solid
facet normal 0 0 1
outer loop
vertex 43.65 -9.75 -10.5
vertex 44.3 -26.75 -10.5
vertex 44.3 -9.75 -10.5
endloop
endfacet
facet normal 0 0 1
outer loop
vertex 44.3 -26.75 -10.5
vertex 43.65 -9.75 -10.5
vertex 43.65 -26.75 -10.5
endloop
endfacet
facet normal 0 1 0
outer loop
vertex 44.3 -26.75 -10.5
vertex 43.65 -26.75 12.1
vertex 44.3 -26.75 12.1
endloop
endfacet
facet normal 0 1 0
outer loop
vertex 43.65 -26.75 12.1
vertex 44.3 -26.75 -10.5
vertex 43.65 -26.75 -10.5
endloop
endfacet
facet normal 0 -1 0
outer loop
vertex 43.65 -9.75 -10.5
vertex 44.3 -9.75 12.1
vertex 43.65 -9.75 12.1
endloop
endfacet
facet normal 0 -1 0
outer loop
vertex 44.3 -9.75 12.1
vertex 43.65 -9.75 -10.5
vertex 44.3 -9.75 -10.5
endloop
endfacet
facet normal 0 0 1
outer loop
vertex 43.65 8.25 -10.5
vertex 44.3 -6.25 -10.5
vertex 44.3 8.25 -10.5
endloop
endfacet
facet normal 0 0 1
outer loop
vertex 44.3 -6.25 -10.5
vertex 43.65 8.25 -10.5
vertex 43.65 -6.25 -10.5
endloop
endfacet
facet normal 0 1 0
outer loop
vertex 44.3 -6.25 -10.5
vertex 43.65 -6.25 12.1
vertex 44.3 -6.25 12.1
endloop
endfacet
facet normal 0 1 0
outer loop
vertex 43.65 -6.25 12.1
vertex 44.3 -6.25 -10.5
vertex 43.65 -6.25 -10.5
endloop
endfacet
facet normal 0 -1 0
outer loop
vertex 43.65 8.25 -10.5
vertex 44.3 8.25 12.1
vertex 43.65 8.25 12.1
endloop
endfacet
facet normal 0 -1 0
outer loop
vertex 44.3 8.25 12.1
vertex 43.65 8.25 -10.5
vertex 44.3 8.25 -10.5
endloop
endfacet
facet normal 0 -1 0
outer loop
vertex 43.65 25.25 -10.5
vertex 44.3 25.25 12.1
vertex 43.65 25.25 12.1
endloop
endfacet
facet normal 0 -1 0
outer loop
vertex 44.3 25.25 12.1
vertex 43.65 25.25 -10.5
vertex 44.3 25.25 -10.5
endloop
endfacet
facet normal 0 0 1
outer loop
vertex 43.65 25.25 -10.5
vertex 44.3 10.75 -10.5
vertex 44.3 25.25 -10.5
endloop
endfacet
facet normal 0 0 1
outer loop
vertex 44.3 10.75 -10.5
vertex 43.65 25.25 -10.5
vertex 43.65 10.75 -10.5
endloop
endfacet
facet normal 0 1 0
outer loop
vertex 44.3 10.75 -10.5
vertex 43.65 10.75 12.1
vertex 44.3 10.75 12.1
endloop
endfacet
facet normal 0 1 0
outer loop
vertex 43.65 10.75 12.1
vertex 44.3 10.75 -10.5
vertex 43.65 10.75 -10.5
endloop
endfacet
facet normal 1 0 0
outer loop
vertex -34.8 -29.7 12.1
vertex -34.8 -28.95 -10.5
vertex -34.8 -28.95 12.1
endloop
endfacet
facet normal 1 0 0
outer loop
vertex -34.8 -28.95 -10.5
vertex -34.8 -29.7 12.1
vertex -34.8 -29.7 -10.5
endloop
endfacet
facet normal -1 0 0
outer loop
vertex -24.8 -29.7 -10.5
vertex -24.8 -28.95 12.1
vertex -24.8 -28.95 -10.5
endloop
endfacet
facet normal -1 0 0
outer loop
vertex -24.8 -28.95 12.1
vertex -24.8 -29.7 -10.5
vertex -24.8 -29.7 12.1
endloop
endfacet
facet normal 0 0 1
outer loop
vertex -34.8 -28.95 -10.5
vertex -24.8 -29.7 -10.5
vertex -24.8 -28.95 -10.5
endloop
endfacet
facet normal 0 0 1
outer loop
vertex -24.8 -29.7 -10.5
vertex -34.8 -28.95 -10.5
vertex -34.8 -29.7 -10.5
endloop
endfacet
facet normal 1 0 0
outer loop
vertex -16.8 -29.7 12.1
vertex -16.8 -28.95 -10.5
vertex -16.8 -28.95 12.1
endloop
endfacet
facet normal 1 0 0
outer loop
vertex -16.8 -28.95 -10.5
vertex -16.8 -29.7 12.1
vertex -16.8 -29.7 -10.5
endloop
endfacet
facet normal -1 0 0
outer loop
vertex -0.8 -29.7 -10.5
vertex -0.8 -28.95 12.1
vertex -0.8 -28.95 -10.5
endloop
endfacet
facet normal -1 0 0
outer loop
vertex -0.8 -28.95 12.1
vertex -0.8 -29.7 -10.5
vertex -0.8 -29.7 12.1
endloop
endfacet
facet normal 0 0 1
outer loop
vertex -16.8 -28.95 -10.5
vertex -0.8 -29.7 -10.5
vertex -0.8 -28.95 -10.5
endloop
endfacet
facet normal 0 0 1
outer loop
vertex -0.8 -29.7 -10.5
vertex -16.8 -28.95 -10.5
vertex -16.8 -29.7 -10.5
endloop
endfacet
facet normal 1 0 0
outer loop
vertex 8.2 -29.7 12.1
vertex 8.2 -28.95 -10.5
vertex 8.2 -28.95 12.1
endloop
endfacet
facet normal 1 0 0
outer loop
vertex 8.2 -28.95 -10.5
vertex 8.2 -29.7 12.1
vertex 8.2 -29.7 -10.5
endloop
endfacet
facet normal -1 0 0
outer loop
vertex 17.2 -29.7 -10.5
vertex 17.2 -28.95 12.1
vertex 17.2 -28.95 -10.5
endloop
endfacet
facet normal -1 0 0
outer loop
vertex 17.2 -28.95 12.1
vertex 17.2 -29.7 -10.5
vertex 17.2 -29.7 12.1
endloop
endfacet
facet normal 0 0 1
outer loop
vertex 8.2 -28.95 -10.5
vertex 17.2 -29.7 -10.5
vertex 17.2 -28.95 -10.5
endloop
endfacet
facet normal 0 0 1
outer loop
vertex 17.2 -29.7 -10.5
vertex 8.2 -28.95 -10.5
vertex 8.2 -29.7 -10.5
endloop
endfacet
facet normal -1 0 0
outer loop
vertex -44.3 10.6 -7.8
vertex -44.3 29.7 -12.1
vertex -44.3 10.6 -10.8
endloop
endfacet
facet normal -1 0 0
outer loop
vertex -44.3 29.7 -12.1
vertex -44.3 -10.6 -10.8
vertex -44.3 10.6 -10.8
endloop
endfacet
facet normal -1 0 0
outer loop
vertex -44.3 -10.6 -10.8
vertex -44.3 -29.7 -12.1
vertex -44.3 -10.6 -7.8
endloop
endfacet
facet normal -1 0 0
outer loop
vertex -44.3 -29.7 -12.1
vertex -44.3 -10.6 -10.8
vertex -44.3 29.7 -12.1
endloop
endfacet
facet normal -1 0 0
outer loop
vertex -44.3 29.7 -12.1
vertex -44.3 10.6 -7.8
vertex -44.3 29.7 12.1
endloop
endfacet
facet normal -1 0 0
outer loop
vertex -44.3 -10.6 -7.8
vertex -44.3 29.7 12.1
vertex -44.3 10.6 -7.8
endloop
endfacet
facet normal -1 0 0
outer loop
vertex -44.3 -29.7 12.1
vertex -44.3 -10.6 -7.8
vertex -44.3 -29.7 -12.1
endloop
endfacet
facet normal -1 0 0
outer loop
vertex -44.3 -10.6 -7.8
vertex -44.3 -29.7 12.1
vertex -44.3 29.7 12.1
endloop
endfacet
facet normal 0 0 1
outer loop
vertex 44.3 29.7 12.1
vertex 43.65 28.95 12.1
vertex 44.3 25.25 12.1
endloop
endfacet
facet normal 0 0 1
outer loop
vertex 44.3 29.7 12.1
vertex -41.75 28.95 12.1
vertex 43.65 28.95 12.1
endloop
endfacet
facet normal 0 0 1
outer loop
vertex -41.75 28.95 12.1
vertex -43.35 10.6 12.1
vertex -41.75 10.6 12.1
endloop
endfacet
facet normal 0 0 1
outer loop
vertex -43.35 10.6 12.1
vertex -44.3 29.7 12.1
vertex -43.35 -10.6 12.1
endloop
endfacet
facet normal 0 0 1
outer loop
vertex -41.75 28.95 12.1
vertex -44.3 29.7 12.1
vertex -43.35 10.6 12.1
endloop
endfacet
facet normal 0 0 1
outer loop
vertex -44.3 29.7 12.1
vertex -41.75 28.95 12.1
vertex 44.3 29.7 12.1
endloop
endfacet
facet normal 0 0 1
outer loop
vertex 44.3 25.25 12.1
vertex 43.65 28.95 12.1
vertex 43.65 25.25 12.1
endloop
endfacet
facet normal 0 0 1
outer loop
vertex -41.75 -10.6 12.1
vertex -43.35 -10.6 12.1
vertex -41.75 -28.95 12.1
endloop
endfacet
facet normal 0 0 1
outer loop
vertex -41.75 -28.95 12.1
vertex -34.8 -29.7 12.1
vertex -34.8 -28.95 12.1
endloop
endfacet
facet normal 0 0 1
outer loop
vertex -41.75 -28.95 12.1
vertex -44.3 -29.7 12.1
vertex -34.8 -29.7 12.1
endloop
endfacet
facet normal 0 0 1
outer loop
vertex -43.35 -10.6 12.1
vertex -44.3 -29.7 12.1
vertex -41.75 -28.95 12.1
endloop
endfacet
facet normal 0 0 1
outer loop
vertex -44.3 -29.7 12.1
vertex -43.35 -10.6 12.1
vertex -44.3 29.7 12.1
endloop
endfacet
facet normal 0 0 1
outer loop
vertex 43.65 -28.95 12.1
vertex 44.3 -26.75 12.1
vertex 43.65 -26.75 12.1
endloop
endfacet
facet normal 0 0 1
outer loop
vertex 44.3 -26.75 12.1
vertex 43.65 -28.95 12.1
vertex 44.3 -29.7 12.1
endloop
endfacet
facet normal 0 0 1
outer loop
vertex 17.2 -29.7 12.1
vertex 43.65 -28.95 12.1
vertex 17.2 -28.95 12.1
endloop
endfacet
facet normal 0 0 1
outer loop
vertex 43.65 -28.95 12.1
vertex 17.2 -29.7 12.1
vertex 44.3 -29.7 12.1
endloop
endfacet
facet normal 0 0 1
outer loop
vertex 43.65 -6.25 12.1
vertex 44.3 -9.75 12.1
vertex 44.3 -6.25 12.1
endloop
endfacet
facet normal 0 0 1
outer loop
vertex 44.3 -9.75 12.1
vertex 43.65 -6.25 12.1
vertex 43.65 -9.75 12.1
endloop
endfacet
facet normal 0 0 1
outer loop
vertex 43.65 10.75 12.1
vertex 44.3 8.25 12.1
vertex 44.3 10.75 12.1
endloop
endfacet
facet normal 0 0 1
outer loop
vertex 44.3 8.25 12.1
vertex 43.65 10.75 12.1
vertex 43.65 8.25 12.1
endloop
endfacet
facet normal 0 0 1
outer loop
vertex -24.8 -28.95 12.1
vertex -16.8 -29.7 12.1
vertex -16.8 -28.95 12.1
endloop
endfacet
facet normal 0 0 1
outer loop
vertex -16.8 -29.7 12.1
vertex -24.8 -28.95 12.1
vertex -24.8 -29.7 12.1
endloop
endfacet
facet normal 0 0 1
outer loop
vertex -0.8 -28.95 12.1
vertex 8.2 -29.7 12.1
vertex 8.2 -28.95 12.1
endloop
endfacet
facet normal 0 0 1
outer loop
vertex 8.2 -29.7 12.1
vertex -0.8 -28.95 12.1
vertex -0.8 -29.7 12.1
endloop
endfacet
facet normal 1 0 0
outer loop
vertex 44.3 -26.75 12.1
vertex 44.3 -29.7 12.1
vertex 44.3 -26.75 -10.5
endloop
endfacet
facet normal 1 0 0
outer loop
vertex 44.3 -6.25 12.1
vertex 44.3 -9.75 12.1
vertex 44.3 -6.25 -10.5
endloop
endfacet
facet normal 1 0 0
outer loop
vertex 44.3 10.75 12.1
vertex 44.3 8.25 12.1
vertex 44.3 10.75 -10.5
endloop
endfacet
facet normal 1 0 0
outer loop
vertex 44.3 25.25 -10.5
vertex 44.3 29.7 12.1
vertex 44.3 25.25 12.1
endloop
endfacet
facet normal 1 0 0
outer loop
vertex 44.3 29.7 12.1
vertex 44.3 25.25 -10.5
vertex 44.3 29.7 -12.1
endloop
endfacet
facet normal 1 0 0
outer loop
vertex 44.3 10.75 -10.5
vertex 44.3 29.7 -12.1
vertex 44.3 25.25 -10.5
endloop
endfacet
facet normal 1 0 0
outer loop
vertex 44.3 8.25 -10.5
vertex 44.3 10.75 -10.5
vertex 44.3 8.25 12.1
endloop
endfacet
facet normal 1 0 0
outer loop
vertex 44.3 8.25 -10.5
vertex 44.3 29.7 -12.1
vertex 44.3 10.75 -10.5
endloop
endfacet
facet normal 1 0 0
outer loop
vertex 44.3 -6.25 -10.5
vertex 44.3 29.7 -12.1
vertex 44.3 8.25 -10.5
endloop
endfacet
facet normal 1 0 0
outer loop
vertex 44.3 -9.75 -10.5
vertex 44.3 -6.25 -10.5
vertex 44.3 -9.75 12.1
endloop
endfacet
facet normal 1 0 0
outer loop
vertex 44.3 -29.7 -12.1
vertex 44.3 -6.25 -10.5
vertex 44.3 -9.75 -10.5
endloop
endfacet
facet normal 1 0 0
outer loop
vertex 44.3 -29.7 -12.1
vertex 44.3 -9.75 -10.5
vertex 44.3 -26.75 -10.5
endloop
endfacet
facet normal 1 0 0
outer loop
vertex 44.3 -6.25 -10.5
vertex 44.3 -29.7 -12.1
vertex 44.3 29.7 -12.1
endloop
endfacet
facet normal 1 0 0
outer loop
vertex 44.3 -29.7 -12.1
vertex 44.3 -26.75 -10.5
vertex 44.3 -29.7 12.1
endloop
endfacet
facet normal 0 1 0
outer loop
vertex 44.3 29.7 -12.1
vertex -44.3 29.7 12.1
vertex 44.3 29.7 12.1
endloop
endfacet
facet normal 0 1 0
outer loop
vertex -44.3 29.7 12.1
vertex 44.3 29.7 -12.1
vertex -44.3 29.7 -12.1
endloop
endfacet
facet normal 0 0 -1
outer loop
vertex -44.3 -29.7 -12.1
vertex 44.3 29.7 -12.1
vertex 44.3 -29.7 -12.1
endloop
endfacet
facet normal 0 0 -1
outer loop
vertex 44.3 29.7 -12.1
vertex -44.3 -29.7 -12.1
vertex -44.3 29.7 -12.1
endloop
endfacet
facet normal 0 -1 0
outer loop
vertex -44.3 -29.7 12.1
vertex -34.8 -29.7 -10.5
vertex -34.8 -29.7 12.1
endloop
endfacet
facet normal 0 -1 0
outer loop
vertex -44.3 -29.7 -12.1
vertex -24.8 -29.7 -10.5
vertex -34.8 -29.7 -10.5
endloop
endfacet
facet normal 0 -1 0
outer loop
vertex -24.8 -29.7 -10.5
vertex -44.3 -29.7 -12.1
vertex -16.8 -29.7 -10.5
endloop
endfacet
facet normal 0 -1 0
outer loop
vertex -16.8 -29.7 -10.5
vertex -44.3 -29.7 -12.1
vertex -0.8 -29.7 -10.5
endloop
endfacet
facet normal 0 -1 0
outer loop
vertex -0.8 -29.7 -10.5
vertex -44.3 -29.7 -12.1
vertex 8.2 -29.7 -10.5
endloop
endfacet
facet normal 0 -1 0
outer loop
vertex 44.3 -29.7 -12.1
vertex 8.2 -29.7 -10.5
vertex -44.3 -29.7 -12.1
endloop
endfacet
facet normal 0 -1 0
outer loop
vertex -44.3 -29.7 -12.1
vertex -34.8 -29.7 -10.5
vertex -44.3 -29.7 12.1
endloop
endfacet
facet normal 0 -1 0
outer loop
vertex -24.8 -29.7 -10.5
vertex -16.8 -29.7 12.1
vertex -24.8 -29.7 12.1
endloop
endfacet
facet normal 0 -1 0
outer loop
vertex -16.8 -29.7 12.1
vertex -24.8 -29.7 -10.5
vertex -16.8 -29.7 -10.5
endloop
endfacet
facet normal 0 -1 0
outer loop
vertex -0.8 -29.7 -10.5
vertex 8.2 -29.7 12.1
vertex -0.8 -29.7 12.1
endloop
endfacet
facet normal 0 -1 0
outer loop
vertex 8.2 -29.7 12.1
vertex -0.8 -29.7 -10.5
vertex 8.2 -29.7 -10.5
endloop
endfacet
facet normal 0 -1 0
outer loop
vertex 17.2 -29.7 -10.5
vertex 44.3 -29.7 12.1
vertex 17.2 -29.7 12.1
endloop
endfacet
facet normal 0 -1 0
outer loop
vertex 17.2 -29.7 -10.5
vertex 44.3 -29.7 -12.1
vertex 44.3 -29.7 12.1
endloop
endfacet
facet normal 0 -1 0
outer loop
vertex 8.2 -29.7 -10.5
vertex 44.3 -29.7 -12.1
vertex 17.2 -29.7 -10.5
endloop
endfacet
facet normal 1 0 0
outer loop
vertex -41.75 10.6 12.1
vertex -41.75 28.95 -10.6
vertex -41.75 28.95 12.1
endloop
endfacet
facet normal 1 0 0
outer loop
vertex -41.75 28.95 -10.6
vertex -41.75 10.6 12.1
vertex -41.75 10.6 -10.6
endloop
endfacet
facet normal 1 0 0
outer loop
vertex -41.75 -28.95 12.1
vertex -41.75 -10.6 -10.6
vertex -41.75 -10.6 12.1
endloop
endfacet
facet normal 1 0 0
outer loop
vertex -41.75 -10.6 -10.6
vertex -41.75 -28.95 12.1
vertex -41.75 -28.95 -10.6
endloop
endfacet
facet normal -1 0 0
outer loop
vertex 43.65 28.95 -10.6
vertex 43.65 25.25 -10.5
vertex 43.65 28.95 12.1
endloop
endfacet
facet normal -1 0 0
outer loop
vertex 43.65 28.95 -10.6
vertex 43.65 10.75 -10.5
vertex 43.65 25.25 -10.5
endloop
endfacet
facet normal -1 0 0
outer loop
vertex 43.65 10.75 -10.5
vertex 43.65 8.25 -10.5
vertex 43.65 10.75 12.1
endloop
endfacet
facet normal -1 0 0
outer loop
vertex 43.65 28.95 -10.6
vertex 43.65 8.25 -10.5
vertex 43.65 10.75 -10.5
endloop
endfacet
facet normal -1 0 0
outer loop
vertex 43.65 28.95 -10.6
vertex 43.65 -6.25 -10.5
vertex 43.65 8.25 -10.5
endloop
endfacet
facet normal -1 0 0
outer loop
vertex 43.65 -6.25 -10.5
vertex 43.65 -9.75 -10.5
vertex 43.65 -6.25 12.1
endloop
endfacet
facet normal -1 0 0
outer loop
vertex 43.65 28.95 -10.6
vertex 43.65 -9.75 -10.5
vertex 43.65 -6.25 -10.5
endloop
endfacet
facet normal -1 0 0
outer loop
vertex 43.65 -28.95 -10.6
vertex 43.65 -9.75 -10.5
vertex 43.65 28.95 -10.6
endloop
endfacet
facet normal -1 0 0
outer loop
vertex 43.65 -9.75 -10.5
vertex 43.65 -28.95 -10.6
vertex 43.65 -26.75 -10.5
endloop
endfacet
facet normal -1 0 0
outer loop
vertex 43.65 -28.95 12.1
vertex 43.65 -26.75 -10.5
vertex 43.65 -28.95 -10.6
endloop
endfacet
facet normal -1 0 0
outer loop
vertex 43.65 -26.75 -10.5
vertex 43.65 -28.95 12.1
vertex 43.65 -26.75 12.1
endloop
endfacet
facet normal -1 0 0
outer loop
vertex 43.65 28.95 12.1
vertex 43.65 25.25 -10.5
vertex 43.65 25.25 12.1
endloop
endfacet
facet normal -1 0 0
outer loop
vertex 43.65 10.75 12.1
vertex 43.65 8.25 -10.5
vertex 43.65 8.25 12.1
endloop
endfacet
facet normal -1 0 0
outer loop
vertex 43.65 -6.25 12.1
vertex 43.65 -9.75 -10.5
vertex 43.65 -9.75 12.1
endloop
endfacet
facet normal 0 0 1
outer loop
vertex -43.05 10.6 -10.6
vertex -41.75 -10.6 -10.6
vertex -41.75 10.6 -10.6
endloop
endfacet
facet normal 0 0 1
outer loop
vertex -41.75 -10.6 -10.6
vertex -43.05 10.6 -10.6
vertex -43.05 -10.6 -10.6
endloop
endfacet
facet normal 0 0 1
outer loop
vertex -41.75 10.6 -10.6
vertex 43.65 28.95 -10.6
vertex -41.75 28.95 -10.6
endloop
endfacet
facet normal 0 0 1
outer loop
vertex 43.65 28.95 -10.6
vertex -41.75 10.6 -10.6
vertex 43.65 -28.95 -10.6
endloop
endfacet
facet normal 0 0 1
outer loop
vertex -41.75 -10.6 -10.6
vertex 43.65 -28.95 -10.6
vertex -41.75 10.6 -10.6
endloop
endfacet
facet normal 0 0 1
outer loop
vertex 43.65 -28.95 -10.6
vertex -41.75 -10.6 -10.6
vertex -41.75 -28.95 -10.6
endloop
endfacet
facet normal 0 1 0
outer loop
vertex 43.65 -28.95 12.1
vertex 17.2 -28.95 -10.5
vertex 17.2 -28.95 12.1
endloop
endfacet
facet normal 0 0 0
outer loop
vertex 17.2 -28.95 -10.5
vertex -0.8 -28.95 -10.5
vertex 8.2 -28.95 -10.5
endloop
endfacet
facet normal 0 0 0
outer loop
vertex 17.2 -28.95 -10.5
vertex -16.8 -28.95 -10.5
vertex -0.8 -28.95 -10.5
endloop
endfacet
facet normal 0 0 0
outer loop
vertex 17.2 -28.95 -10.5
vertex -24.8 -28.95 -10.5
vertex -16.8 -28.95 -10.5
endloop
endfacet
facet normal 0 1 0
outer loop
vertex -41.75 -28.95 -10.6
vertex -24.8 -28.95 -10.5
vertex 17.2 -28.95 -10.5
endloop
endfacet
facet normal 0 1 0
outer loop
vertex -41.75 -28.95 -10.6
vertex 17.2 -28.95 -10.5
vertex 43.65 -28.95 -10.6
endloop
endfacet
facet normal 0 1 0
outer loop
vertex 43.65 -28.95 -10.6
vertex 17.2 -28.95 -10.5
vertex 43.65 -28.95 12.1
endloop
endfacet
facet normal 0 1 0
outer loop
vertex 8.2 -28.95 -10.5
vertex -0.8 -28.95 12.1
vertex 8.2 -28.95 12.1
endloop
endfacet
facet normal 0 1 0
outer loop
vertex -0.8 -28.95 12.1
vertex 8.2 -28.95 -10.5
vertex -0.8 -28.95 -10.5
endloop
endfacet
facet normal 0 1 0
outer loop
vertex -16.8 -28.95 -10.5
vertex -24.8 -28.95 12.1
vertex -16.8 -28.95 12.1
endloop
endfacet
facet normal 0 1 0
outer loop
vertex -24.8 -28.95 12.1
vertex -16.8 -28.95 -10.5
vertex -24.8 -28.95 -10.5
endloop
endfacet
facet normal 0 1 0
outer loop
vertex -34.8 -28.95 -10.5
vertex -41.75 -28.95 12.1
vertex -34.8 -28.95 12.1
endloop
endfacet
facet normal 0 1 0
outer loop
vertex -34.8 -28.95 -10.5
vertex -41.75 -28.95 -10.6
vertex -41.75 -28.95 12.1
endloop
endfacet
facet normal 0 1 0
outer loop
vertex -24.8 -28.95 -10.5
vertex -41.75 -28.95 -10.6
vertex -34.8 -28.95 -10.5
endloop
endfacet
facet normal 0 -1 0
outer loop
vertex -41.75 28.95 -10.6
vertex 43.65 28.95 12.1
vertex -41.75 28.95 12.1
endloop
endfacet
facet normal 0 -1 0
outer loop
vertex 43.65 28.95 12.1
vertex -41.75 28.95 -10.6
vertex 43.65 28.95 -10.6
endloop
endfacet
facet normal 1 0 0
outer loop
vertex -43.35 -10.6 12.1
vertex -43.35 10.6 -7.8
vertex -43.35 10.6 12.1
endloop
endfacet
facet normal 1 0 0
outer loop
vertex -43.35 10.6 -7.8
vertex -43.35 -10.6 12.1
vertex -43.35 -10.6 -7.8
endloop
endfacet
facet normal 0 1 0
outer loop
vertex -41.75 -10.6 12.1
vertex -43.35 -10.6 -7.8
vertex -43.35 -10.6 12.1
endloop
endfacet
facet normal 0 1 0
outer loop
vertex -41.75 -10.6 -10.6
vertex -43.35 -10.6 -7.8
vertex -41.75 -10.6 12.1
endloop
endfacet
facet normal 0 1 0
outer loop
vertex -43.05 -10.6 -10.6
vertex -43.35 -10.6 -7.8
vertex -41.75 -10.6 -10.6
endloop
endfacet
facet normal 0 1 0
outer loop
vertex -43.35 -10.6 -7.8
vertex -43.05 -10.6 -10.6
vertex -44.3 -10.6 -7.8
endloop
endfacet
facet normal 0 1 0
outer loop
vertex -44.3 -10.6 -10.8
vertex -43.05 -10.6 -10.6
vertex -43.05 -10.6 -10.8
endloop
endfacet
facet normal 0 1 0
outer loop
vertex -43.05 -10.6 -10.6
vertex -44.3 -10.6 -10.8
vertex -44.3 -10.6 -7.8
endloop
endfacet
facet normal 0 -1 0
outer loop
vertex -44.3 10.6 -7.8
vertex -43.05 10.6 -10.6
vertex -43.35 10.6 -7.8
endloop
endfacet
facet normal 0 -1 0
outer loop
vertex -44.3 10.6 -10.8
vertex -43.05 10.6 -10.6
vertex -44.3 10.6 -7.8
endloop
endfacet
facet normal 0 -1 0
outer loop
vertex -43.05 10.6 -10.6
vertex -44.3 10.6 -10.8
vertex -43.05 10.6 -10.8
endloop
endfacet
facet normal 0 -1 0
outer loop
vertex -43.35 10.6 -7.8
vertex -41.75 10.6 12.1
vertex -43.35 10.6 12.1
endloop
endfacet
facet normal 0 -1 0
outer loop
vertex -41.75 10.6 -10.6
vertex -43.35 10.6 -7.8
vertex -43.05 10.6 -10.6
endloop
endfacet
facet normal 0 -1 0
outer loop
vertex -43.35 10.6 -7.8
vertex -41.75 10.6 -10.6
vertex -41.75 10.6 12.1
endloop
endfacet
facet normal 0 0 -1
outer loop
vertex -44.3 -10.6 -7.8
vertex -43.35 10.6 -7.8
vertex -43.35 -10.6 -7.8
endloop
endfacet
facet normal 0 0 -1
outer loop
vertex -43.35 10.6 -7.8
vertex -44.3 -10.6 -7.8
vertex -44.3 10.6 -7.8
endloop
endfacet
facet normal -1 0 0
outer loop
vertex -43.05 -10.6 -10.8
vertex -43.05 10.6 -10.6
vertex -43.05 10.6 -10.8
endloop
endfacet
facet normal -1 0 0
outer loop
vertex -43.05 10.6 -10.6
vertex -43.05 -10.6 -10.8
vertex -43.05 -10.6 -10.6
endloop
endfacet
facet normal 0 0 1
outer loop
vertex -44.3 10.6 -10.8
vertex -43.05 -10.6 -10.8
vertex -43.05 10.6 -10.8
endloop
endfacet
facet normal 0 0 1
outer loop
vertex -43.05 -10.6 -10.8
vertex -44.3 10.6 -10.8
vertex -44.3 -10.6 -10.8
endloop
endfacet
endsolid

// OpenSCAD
pi_x = 85;
sd_x = 1.5;
sd_y = 21;
sd_z = 1;
plug_x = 2;

pi_y = 57.5;

pi_z = 23.0;

wall_thickness = .75;
pi_x_clearance = .2;
pi_y_clearance = .2;
pi_z_clearance = .2;

sd_x_clearance = .2;
sd_y_clearance = .2;
sd_z_clearance = 1;

floor_width = 1;

//Double the - clearance for the SD
base_block_x = sd_x + pi_x + wall_thickness*2 + pi_x_clearance*2+ sd_x_clearance;

base_block_y = pi_y + pi_y_clearance*2 + wall_thickness*2;
base_block_z = floor_width + pi_z + pi_z_clearance;

difference(){
    cube([base_block_x, base_block_y, base_block_z], 
        center=true);
    
    //Pi hole
    //Move 1 pi_x_clearance for SD card
    translate([sd_x/2 + sd_x_clearance,0,floor_width])
    cube([pi_x+pi_y_clearance*2, pi_y+pi_y_clearance*2, pi_z+pi_z_clearance],
        center=true);
    
     translate([-pi_x/2,0,40/2+-pi_z/2 - pi_z_clearance/2+floor_width])
    //SD hole
    cube([sd_x+sd_x_clearance,sd_y+sd_y_clearance, 40],
        center=true);
    translate([-pi_x/2 - sd_x,0, -pi_z/2 + floor_width + sd_z_clearance +pi_z_clearance])
    cube([sd_x+sd_x_clearance*2,sd_y+sd_y_clearance, sd_z + sd_z_clearance*2],
        center=true);
    

    //Ethernet, USBs
    translate([pi_x/2,-pi_y/2 +.5,-pi_z/2+floor_width]){
        translate([0,1.5,0])
        cube([10,17,25]);
        
        translate([0, 22, 0])
        cube([10,14.5, 25]);
        
        translate([0,39,0])
        cube([10,14.5,25]);
    }
    
        translate([-pi_x/2 +1.5 + pi_x_clearance, -pi_y/2-5, -pi_z/2+floor_width]){
    // Power, HDMI, Headphones
        translate([6,0,0])
        cube([10,10,25]);
        
        translate([24, 0, 0])
        cube([16,10,25]);
        
        translate([49,0,0])
        cube([9, 10, 25]);
    }
}
